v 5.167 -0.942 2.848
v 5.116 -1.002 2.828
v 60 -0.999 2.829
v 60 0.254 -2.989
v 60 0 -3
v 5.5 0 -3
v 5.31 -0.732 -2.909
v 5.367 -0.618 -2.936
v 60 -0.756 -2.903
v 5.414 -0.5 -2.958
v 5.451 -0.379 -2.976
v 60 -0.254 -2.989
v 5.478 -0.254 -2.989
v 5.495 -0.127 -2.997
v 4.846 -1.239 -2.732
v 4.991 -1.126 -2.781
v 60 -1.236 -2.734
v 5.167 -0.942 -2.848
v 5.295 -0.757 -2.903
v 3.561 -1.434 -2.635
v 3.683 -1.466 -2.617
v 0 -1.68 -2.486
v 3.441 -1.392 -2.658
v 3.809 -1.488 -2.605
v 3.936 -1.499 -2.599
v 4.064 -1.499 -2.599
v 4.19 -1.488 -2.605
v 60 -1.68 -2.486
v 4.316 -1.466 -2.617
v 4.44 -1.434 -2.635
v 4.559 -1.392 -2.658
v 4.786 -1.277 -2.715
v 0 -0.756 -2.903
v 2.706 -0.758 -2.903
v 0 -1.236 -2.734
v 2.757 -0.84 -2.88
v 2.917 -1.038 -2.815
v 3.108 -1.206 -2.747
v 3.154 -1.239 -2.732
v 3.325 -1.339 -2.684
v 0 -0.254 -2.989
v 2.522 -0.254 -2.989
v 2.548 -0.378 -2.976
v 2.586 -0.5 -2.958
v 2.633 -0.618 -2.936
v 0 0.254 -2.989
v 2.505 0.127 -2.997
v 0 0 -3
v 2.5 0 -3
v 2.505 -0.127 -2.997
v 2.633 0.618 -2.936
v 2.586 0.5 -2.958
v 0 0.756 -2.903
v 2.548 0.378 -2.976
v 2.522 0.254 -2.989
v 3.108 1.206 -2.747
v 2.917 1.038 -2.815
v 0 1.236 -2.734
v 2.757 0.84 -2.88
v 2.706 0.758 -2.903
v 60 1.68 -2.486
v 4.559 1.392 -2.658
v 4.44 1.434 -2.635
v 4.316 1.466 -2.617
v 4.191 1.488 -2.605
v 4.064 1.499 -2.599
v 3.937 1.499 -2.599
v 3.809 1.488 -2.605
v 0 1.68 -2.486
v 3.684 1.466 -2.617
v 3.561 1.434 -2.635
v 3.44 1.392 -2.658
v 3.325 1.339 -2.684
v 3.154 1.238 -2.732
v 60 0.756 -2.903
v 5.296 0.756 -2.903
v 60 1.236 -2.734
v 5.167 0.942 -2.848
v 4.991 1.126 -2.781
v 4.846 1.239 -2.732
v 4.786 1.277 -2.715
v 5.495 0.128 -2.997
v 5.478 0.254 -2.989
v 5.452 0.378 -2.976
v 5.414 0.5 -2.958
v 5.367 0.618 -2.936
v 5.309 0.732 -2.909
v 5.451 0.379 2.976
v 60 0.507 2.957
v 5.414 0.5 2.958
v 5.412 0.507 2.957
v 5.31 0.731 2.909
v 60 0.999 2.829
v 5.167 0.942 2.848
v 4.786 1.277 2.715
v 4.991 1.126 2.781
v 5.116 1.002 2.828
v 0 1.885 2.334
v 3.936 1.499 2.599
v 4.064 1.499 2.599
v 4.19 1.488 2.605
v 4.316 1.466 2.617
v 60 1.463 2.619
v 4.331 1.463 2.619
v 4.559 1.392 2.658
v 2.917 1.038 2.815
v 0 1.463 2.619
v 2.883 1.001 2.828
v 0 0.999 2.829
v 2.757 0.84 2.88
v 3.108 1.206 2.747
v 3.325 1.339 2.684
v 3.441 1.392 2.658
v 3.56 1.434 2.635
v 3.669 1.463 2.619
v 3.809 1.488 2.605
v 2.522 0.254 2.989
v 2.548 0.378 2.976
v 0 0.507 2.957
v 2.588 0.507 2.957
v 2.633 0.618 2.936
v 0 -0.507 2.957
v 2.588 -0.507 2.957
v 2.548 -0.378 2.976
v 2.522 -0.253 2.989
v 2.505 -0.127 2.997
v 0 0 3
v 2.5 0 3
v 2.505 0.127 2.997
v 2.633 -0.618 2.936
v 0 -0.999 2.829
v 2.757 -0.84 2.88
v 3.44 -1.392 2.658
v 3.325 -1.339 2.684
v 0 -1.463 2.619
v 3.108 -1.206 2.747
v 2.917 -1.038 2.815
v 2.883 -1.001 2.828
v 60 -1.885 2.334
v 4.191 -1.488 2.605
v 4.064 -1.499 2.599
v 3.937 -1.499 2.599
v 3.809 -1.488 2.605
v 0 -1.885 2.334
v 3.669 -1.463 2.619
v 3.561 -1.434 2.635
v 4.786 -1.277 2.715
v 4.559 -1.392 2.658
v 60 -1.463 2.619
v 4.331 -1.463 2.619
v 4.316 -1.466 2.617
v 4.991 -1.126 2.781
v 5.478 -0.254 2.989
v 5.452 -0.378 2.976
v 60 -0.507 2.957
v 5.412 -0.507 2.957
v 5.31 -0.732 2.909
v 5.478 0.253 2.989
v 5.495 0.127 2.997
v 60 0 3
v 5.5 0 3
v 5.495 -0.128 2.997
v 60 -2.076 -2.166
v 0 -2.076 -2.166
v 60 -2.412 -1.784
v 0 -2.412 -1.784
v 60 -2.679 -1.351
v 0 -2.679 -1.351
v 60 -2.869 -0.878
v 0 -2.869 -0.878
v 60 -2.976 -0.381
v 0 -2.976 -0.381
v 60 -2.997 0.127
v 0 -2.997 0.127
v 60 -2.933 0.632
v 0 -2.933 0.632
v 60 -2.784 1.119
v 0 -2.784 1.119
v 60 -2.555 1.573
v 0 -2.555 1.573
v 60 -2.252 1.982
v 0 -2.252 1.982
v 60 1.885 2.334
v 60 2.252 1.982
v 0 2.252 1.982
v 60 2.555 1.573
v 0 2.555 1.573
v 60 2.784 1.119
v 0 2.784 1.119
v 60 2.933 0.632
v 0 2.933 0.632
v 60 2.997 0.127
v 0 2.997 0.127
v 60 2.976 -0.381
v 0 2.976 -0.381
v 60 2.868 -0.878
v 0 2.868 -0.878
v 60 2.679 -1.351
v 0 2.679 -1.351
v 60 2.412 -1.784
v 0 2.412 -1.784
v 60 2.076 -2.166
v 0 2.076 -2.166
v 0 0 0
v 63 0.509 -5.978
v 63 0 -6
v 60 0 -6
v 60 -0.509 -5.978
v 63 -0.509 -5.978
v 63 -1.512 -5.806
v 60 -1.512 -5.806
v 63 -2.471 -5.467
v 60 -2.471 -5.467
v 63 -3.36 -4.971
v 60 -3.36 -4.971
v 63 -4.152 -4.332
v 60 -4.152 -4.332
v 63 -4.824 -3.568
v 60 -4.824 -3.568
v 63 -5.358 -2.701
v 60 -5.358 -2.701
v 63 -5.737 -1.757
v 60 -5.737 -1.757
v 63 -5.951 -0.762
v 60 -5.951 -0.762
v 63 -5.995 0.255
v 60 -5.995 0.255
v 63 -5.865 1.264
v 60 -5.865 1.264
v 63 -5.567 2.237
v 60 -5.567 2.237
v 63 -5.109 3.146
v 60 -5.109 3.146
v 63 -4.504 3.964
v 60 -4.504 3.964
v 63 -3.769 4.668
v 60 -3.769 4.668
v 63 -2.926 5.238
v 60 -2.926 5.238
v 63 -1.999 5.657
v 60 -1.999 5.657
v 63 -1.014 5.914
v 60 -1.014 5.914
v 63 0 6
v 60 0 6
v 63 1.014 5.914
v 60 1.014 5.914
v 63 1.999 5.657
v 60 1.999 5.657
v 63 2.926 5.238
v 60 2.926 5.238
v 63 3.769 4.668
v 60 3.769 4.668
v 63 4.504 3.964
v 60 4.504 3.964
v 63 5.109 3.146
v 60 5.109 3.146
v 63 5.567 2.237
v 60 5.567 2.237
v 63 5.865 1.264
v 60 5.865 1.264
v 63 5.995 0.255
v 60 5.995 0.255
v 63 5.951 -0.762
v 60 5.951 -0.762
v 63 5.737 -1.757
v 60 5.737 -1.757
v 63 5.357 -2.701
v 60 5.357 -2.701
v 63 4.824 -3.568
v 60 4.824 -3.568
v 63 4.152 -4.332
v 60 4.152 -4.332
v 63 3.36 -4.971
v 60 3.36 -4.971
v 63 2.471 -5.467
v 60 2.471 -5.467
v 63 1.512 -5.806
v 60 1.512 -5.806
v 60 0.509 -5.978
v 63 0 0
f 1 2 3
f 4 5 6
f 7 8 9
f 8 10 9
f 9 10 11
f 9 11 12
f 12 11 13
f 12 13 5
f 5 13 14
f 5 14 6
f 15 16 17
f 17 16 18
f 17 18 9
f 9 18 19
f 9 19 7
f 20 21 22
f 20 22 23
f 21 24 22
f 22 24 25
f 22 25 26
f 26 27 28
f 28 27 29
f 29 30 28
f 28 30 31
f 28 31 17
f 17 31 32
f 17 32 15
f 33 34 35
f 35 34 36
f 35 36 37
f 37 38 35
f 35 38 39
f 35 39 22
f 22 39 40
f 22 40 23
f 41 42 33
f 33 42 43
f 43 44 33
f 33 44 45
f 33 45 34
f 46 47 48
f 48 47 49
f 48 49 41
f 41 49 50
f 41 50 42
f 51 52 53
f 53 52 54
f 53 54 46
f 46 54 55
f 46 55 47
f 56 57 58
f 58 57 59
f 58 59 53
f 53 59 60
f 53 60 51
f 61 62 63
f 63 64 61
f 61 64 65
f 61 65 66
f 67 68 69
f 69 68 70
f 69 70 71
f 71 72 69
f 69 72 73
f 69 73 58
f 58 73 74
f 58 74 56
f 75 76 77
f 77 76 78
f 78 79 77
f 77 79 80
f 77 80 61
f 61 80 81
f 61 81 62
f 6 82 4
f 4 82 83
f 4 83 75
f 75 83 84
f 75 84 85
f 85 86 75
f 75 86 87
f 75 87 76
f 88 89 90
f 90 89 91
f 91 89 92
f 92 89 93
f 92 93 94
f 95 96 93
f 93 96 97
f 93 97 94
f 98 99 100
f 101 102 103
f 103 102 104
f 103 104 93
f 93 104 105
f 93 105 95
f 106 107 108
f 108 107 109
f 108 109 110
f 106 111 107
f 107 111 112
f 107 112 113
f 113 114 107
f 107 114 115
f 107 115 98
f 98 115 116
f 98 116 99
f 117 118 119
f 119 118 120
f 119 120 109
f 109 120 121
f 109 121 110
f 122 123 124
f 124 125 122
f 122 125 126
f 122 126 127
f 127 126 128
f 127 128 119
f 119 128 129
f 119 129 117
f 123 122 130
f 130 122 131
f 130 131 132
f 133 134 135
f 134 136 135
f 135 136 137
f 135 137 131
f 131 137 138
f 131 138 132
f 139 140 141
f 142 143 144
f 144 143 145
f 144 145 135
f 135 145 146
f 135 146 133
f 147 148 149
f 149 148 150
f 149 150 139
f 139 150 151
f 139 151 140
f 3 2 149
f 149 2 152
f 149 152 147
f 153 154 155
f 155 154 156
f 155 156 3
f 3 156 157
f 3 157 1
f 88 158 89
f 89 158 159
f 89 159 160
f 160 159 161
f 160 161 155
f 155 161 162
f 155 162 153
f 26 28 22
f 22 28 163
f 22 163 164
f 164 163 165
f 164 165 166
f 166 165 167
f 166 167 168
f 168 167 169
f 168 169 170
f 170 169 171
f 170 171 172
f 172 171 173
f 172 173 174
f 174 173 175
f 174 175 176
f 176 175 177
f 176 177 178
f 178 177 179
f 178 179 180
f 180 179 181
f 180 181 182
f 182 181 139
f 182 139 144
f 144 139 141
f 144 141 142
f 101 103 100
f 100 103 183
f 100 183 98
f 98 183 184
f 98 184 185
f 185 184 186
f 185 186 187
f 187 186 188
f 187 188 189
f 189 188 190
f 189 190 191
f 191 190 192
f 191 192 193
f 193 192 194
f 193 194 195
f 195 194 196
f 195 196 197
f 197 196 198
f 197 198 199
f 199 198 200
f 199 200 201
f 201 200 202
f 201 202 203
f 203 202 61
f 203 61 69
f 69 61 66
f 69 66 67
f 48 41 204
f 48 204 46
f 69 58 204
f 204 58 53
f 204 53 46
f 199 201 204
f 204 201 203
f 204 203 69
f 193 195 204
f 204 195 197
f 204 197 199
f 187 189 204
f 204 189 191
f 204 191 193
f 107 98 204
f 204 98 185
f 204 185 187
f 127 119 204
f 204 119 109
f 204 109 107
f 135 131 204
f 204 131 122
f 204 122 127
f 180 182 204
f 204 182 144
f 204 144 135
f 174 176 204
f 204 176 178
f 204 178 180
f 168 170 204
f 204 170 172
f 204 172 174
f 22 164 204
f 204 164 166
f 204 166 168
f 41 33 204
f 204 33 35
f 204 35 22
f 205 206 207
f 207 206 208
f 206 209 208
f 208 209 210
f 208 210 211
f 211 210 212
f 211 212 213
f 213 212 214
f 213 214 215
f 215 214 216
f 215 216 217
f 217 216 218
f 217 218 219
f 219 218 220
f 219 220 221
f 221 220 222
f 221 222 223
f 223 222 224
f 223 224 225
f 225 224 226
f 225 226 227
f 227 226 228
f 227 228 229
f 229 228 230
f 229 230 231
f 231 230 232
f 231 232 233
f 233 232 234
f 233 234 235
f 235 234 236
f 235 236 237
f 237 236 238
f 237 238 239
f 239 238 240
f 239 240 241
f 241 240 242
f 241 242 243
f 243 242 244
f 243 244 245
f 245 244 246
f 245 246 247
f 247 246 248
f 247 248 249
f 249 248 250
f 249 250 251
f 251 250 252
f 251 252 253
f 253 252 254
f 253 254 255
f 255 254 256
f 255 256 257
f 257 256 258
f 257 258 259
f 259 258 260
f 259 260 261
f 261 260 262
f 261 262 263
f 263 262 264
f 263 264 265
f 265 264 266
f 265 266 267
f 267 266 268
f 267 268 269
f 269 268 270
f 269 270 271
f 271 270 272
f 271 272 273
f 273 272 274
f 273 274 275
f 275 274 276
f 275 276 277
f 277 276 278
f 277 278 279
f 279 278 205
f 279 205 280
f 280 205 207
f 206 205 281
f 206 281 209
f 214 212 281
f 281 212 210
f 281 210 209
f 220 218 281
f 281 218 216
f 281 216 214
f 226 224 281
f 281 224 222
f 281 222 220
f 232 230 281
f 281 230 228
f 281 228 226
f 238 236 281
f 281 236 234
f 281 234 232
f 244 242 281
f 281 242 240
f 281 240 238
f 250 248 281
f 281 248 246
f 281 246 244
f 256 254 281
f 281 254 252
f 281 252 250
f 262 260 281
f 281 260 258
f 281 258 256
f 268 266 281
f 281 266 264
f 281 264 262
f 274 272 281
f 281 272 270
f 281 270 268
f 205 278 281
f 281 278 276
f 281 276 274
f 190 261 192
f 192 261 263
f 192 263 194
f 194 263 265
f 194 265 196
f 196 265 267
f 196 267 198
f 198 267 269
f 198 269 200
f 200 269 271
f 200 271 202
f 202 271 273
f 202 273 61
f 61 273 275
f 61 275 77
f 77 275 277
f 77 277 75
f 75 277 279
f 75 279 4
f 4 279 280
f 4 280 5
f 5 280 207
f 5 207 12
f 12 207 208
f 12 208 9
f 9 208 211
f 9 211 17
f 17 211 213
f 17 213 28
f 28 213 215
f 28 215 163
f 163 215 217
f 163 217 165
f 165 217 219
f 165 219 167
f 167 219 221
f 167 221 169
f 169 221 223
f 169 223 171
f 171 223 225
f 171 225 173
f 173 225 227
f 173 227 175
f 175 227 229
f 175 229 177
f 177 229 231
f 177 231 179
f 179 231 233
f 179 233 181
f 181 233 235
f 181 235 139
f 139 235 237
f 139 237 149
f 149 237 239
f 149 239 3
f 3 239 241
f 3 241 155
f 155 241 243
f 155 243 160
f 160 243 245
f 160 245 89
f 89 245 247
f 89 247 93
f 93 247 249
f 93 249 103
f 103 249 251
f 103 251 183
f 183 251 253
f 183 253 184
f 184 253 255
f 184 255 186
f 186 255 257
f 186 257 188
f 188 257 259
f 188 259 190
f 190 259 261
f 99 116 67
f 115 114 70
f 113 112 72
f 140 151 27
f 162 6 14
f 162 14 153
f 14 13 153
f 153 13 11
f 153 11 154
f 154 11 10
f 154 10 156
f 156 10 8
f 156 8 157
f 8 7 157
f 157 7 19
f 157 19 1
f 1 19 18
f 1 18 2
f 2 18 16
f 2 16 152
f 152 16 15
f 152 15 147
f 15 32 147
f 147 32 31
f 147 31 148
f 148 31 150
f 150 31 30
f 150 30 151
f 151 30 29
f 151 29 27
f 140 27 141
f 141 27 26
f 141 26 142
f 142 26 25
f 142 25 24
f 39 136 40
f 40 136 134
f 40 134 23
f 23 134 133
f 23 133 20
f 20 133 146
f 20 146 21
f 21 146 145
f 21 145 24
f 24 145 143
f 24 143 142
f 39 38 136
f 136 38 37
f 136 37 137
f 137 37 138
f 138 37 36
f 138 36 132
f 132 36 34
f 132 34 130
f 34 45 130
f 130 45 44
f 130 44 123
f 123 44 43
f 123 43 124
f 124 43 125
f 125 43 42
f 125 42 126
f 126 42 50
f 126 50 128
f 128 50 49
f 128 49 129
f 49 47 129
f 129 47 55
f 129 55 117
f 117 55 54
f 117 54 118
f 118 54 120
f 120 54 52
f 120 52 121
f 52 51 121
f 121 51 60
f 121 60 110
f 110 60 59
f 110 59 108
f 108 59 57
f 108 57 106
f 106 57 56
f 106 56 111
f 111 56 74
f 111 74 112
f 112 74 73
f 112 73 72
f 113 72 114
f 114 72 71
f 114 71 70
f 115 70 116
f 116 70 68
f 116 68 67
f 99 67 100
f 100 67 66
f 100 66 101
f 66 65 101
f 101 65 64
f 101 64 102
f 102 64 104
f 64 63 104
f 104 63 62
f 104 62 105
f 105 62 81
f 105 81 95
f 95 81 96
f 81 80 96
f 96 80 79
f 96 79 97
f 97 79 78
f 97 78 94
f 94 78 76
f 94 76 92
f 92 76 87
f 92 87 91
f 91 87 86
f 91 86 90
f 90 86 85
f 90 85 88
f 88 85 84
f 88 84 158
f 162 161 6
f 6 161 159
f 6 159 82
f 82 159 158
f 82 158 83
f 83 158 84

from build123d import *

# Parameters (mm, degrees)
SKETCH1_R               = 3
BOSS_EXTRUDE1_DEPTH     = 60
SKETCH2_R               = 6
BOSS_EXTRUDE2_DEPTH     = 3
SKETCH3_R               = 1.5
CUT_EXTRUDE1_DEPTH      = 7
CUT_EXTRUDE1_DEPTH_BACK = 7


with BuildPart() as part:
    # Sketch1 → Boss-Extrude1 (new body)
    with BuildSketch(Plane(origin=(0, 0, 0), x_dir=(0, 0, -1), z_dir=(1, 0, 0))):
        Circle(SKETCH1_R)
    extrude(amount=BOSS_EXTRUDE1_DEPTH)

    # Sketch2 → Boss-Extrude2 (add)
    with BuildSketch(Plane(origin=(60, 0, 0), x_dir=(0, 0, -1), z_dir=(1, 0, 0))):
        Circle(SKETCH2_R)
    extrude(amount=BOSS_EXTRUDE2_DEPTH)

    # Sketch3 → Cut-Extrude1 (cut, two sides)
    with BuildSketch(Plane.XY) as cut_extrude1_sk:
        with Locations((4, 0)):
            Circle(SKETCH3_R)
    extrude(amount=CUT_EXTRUDE1_DEPTH, mode=Mode.SUBTRACT)
    extrude(cut_extrude1_sk.sketch, amount=-CUT_EXTRUDE1_DEPTH_BACK, mode=Mode.SUBTRACT)


solid = part.part
